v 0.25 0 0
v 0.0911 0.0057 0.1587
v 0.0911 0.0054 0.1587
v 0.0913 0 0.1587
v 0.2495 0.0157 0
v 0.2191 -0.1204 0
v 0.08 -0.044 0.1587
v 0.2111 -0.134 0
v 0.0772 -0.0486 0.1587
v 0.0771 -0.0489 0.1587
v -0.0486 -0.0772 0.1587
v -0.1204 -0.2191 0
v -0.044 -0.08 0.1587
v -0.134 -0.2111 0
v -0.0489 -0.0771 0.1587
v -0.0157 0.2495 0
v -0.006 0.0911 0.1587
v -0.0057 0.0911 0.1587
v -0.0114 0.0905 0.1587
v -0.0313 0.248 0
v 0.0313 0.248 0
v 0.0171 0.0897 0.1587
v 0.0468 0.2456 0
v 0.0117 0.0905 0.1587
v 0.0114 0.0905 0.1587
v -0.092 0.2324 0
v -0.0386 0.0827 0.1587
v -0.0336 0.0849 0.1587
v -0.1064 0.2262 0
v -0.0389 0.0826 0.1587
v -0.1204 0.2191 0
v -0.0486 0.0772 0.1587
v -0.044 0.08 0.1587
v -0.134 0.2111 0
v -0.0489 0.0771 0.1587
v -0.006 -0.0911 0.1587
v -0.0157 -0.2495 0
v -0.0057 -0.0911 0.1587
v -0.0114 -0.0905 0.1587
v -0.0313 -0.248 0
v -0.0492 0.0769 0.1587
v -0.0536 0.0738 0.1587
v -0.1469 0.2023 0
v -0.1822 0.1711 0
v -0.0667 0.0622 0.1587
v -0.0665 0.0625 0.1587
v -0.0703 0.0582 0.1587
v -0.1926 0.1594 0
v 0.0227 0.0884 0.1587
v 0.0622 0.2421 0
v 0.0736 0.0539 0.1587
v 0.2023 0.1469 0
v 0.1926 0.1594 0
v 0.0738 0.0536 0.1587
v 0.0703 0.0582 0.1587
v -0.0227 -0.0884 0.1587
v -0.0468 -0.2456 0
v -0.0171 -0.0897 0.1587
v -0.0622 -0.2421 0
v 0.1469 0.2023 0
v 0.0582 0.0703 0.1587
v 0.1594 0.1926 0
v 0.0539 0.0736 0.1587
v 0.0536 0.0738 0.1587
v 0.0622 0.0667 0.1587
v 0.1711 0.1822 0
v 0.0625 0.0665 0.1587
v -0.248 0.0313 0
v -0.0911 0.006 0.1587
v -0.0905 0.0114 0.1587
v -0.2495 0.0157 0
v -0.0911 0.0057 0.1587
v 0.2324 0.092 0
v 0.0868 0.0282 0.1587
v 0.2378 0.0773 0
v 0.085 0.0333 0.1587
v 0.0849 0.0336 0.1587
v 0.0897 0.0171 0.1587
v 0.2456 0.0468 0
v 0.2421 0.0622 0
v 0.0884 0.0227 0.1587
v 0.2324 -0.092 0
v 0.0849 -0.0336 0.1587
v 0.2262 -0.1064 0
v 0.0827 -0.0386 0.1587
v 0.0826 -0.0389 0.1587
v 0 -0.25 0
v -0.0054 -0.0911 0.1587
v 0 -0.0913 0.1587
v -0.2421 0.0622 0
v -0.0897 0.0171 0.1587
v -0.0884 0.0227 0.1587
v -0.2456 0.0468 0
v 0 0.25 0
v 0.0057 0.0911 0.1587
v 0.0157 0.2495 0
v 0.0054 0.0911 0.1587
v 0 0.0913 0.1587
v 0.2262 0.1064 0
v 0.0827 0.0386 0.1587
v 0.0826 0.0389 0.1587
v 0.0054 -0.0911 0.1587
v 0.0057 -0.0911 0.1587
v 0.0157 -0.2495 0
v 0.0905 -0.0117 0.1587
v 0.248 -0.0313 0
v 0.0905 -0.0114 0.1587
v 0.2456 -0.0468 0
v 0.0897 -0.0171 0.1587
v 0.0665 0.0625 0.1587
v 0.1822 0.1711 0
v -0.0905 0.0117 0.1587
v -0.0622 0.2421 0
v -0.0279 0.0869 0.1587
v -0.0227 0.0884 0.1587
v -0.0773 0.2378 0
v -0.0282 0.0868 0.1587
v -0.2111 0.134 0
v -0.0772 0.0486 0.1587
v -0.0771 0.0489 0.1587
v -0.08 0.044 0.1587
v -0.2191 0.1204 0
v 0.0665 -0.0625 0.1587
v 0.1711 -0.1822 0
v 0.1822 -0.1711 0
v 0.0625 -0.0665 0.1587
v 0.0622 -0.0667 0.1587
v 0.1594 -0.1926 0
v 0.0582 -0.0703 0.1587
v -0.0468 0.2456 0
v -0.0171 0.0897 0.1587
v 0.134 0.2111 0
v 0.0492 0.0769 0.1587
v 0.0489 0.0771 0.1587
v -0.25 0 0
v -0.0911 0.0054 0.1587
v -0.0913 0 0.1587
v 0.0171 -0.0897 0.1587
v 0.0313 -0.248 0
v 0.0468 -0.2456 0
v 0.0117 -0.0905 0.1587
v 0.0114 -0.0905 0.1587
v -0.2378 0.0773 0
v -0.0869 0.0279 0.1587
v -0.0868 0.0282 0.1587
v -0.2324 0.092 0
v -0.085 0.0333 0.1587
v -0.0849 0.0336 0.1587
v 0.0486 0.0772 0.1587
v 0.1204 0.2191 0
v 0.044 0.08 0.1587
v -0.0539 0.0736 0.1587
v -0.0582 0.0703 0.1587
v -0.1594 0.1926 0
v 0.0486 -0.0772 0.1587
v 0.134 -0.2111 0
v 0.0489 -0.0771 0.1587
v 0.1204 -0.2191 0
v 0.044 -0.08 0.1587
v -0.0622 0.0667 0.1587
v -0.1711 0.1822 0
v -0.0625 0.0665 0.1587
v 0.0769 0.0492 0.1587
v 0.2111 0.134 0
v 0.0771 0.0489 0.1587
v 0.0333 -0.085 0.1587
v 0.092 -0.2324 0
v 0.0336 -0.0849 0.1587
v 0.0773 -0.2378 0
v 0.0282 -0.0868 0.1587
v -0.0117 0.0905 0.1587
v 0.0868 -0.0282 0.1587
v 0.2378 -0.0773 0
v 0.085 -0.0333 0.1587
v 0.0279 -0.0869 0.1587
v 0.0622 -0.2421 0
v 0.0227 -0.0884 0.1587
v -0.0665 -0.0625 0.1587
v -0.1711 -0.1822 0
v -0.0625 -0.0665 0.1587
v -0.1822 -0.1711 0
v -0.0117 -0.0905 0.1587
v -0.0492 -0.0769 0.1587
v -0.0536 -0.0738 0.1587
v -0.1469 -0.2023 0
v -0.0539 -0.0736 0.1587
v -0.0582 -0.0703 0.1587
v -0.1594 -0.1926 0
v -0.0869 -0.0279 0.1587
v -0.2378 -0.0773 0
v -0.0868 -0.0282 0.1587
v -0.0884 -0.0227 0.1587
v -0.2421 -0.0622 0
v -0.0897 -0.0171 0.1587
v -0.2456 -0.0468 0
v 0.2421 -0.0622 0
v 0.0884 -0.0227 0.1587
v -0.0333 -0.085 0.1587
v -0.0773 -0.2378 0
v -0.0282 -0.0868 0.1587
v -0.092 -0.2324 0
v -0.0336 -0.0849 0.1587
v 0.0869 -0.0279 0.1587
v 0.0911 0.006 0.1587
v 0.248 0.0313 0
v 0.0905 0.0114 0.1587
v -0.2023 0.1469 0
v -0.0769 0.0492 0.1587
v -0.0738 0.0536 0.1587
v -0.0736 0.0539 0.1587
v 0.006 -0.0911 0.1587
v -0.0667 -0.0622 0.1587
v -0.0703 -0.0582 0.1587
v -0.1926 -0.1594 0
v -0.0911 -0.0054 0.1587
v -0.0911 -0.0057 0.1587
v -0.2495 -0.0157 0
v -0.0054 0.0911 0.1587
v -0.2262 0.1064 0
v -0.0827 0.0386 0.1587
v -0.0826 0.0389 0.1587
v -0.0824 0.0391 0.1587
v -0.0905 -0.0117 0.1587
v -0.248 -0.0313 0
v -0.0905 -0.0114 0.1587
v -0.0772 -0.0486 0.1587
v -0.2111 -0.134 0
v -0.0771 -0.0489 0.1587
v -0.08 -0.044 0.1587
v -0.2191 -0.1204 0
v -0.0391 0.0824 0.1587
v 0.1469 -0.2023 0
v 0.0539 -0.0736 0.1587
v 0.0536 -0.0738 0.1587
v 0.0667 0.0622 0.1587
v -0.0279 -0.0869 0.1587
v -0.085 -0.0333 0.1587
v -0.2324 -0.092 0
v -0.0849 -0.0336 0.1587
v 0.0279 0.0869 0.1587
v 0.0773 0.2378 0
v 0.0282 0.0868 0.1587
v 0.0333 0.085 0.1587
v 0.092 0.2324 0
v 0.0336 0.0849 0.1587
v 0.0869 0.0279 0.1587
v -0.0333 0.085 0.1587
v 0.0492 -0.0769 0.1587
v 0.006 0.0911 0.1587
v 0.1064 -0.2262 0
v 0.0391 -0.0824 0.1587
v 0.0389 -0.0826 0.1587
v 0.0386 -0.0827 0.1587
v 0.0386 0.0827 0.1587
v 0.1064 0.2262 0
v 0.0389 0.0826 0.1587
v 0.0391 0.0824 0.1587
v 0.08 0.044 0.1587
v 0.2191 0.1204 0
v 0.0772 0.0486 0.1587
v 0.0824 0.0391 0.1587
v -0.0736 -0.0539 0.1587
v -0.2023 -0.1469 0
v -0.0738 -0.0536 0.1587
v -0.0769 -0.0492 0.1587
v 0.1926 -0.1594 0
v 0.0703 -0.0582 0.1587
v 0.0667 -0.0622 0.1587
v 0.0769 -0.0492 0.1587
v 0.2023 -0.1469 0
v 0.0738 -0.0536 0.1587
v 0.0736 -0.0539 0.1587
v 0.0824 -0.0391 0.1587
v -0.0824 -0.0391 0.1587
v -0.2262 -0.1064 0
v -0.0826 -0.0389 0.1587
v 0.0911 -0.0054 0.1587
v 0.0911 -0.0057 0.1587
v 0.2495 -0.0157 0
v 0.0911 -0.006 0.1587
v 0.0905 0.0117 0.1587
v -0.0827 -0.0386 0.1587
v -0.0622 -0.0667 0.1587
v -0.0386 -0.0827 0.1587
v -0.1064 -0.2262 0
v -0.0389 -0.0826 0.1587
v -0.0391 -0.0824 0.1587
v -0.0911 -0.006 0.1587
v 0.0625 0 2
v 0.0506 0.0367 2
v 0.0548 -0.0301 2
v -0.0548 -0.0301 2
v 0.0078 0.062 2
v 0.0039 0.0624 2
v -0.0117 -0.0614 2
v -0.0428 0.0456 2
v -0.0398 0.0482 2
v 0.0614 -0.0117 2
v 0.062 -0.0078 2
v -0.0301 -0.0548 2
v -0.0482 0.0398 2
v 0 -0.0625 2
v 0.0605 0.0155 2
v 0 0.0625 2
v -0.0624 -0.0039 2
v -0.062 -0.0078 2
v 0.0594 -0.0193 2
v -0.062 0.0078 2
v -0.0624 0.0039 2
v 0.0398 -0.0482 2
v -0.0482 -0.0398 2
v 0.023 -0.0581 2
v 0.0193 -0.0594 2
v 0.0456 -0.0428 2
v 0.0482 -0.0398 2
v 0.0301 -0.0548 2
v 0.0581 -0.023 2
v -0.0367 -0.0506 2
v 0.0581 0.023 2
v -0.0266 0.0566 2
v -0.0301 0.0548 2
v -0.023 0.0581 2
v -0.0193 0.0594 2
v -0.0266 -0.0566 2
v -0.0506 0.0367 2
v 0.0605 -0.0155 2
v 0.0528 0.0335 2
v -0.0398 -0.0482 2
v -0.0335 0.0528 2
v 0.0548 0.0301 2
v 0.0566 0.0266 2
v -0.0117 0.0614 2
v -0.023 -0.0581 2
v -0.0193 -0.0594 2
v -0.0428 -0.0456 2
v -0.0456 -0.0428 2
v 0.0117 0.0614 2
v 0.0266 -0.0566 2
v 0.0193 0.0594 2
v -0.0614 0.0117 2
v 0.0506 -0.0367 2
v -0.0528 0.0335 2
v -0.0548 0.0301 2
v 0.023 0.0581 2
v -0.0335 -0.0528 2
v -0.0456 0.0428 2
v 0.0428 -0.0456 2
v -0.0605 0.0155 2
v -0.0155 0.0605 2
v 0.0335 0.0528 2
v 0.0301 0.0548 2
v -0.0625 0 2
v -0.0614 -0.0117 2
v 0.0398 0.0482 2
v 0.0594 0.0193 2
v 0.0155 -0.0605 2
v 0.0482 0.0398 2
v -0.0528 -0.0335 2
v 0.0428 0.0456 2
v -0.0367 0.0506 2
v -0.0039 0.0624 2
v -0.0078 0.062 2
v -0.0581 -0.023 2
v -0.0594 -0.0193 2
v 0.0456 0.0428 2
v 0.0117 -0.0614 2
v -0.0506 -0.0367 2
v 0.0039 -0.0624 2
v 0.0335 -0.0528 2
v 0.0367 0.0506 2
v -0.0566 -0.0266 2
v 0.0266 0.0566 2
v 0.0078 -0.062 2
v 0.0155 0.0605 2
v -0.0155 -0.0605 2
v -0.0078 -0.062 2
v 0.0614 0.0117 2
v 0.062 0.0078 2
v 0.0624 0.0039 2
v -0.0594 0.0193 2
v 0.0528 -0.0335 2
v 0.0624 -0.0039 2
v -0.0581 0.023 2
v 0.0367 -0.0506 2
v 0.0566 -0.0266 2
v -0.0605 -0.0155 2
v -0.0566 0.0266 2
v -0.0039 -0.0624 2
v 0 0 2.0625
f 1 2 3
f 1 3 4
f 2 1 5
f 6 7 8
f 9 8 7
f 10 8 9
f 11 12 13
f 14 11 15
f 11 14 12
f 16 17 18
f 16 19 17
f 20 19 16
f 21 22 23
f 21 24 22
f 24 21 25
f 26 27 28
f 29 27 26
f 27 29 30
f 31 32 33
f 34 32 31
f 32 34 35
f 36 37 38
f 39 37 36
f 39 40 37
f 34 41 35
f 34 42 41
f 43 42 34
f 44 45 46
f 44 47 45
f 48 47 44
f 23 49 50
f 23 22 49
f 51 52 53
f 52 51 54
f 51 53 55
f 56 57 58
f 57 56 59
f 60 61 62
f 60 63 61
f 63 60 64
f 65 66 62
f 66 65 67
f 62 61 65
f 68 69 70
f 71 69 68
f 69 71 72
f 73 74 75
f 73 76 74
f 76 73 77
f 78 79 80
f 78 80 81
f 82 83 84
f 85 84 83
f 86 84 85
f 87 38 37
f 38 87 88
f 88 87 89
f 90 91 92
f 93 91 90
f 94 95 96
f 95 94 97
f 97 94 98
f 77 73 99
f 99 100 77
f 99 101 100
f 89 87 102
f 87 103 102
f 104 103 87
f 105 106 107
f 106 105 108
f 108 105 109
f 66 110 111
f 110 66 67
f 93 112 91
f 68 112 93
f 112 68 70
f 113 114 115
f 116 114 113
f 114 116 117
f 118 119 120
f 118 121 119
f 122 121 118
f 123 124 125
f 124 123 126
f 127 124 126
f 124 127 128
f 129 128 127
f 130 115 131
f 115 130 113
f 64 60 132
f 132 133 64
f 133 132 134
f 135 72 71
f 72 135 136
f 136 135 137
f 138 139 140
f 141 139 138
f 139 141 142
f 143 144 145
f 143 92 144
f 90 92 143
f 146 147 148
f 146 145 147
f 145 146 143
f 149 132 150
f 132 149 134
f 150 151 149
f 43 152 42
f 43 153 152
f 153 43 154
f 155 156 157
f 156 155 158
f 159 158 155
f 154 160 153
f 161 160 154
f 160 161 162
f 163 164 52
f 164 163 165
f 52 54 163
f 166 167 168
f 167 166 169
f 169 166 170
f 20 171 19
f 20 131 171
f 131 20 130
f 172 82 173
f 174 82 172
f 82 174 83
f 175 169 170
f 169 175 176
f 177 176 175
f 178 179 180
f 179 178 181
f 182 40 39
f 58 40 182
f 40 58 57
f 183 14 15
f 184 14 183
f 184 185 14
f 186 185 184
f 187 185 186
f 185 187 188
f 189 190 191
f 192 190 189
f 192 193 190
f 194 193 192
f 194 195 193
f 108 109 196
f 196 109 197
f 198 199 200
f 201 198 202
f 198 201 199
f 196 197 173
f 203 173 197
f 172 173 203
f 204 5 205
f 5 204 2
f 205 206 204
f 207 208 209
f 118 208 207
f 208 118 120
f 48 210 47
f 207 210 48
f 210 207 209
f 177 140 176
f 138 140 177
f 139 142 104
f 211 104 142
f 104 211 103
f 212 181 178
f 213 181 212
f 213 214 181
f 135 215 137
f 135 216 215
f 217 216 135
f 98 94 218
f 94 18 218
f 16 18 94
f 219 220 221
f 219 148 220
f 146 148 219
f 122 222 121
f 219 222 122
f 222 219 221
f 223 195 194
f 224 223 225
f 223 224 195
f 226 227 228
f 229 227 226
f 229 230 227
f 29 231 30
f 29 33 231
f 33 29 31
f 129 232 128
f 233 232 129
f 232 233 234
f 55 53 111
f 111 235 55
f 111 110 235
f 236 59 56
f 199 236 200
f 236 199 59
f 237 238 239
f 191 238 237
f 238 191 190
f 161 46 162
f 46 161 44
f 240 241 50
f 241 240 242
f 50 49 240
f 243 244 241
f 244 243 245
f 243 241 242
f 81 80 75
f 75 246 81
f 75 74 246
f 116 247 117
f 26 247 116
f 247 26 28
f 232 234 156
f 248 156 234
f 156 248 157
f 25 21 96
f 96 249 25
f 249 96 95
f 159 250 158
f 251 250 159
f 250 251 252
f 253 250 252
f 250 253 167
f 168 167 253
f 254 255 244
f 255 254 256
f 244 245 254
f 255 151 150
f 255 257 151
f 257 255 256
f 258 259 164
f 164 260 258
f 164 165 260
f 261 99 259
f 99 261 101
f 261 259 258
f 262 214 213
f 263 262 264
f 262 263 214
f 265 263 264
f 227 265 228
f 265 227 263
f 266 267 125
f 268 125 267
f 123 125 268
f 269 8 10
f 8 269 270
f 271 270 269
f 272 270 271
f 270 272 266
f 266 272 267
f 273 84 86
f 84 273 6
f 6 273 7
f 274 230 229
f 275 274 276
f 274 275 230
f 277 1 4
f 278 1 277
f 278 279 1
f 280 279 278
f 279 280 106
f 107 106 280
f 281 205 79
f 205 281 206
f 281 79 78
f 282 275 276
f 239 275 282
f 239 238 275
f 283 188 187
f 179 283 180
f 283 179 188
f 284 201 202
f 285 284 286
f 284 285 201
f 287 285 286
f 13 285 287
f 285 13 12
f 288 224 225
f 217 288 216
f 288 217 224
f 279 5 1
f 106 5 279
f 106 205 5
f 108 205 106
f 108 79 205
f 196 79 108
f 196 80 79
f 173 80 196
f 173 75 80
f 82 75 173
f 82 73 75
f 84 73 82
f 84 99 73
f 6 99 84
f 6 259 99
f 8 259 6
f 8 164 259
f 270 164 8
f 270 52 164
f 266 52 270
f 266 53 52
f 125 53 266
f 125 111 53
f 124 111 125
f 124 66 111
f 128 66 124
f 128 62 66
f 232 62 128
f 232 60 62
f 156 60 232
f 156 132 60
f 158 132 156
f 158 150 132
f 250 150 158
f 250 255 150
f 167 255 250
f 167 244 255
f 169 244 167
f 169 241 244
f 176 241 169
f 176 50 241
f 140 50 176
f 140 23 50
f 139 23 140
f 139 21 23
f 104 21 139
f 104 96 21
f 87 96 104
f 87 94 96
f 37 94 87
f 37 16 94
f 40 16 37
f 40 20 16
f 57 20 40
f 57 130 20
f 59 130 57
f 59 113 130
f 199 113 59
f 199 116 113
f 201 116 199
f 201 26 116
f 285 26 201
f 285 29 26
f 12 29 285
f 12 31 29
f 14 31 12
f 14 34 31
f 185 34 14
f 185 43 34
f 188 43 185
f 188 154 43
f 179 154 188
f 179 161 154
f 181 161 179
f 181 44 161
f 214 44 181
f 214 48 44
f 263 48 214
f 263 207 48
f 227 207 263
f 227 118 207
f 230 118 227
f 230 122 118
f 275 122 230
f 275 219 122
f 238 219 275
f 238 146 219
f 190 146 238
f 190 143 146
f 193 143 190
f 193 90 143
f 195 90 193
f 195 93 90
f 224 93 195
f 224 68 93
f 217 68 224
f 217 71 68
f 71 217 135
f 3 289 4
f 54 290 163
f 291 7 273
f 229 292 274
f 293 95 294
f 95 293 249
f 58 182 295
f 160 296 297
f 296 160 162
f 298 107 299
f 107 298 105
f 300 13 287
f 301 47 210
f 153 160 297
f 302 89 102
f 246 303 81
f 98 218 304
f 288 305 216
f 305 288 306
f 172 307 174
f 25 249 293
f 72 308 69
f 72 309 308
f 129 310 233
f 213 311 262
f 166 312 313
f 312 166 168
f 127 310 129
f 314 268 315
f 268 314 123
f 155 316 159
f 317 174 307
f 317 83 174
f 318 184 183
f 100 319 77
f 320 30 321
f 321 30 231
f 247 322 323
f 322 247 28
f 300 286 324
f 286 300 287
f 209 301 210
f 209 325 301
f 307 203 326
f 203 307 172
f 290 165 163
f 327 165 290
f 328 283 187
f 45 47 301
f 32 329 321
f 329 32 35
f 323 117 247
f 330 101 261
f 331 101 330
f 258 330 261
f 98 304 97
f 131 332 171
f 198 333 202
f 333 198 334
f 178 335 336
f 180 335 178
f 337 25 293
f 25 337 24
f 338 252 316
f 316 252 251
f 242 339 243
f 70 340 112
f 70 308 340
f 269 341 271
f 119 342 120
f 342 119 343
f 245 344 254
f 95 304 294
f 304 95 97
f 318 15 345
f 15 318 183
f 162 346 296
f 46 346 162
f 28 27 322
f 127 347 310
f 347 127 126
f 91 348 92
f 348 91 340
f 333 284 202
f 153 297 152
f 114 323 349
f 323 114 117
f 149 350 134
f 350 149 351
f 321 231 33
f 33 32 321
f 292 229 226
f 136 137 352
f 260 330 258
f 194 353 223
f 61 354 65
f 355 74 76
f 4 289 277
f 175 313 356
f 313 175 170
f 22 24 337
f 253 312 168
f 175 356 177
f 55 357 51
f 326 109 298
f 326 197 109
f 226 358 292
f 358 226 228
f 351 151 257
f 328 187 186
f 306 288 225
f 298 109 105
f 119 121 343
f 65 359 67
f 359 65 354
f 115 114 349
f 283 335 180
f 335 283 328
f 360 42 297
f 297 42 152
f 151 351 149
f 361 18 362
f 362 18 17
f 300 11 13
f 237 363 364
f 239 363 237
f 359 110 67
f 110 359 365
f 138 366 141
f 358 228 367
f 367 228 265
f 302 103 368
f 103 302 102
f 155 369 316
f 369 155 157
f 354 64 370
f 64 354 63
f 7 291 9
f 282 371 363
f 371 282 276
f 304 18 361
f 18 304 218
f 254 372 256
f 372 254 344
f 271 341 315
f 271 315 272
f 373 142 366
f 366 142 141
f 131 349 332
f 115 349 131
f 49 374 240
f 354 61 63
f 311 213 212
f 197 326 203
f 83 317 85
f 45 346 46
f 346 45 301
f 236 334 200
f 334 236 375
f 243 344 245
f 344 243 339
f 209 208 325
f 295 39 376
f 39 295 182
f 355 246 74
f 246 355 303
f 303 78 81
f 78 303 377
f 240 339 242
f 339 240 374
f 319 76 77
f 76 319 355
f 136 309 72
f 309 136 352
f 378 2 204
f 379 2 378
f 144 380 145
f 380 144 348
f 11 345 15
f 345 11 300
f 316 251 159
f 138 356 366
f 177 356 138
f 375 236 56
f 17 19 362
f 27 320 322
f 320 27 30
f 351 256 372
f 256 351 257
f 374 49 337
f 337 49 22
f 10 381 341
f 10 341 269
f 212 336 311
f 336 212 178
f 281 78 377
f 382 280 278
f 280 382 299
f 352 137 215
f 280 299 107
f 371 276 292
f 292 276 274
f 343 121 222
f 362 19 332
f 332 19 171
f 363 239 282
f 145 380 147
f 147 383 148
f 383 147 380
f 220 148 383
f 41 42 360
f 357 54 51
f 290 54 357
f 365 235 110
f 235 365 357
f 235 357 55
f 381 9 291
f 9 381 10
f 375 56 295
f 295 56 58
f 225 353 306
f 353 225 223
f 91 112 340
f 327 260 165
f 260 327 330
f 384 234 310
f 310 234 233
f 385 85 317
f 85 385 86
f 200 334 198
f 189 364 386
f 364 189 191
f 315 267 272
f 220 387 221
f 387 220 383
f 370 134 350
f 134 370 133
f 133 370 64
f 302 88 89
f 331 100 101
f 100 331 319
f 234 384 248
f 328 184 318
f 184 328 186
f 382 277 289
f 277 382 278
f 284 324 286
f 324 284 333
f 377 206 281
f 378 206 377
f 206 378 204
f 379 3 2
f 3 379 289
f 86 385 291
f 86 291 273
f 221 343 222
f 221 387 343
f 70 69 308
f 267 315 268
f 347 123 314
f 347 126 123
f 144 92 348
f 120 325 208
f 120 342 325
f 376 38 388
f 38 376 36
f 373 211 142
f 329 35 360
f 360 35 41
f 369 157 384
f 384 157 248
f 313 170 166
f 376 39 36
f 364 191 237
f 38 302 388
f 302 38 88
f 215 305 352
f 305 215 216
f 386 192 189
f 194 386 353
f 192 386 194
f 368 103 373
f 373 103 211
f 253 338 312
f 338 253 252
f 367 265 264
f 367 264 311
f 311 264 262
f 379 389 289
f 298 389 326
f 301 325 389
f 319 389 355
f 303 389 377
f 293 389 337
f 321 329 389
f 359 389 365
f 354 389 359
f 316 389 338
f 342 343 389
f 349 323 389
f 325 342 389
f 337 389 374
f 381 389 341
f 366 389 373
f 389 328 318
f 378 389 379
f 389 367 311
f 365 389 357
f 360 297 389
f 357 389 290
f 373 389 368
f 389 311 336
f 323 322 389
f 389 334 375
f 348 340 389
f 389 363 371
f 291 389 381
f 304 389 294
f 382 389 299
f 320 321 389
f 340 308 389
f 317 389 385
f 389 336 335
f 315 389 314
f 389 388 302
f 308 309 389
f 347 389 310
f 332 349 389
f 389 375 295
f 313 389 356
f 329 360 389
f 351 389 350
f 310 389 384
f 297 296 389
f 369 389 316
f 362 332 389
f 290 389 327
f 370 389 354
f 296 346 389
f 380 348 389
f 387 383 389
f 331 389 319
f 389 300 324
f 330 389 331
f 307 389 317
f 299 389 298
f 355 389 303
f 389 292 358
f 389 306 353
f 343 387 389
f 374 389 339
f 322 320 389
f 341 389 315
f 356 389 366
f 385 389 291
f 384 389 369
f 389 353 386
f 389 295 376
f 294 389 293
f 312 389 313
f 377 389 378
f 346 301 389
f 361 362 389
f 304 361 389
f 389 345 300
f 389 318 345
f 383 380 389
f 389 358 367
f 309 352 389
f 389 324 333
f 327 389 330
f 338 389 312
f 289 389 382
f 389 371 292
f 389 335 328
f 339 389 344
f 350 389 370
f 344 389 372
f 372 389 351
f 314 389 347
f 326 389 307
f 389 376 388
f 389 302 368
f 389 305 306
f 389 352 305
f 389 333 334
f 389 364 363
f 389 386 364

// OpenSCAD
$fn=100;
cylinder(0.25, 0.25, 0);
cylinder(2, 3/32, 1/16);
translate([0, 0 , 2]) {
	cylinder(1/16, 1/16, 0);
};
